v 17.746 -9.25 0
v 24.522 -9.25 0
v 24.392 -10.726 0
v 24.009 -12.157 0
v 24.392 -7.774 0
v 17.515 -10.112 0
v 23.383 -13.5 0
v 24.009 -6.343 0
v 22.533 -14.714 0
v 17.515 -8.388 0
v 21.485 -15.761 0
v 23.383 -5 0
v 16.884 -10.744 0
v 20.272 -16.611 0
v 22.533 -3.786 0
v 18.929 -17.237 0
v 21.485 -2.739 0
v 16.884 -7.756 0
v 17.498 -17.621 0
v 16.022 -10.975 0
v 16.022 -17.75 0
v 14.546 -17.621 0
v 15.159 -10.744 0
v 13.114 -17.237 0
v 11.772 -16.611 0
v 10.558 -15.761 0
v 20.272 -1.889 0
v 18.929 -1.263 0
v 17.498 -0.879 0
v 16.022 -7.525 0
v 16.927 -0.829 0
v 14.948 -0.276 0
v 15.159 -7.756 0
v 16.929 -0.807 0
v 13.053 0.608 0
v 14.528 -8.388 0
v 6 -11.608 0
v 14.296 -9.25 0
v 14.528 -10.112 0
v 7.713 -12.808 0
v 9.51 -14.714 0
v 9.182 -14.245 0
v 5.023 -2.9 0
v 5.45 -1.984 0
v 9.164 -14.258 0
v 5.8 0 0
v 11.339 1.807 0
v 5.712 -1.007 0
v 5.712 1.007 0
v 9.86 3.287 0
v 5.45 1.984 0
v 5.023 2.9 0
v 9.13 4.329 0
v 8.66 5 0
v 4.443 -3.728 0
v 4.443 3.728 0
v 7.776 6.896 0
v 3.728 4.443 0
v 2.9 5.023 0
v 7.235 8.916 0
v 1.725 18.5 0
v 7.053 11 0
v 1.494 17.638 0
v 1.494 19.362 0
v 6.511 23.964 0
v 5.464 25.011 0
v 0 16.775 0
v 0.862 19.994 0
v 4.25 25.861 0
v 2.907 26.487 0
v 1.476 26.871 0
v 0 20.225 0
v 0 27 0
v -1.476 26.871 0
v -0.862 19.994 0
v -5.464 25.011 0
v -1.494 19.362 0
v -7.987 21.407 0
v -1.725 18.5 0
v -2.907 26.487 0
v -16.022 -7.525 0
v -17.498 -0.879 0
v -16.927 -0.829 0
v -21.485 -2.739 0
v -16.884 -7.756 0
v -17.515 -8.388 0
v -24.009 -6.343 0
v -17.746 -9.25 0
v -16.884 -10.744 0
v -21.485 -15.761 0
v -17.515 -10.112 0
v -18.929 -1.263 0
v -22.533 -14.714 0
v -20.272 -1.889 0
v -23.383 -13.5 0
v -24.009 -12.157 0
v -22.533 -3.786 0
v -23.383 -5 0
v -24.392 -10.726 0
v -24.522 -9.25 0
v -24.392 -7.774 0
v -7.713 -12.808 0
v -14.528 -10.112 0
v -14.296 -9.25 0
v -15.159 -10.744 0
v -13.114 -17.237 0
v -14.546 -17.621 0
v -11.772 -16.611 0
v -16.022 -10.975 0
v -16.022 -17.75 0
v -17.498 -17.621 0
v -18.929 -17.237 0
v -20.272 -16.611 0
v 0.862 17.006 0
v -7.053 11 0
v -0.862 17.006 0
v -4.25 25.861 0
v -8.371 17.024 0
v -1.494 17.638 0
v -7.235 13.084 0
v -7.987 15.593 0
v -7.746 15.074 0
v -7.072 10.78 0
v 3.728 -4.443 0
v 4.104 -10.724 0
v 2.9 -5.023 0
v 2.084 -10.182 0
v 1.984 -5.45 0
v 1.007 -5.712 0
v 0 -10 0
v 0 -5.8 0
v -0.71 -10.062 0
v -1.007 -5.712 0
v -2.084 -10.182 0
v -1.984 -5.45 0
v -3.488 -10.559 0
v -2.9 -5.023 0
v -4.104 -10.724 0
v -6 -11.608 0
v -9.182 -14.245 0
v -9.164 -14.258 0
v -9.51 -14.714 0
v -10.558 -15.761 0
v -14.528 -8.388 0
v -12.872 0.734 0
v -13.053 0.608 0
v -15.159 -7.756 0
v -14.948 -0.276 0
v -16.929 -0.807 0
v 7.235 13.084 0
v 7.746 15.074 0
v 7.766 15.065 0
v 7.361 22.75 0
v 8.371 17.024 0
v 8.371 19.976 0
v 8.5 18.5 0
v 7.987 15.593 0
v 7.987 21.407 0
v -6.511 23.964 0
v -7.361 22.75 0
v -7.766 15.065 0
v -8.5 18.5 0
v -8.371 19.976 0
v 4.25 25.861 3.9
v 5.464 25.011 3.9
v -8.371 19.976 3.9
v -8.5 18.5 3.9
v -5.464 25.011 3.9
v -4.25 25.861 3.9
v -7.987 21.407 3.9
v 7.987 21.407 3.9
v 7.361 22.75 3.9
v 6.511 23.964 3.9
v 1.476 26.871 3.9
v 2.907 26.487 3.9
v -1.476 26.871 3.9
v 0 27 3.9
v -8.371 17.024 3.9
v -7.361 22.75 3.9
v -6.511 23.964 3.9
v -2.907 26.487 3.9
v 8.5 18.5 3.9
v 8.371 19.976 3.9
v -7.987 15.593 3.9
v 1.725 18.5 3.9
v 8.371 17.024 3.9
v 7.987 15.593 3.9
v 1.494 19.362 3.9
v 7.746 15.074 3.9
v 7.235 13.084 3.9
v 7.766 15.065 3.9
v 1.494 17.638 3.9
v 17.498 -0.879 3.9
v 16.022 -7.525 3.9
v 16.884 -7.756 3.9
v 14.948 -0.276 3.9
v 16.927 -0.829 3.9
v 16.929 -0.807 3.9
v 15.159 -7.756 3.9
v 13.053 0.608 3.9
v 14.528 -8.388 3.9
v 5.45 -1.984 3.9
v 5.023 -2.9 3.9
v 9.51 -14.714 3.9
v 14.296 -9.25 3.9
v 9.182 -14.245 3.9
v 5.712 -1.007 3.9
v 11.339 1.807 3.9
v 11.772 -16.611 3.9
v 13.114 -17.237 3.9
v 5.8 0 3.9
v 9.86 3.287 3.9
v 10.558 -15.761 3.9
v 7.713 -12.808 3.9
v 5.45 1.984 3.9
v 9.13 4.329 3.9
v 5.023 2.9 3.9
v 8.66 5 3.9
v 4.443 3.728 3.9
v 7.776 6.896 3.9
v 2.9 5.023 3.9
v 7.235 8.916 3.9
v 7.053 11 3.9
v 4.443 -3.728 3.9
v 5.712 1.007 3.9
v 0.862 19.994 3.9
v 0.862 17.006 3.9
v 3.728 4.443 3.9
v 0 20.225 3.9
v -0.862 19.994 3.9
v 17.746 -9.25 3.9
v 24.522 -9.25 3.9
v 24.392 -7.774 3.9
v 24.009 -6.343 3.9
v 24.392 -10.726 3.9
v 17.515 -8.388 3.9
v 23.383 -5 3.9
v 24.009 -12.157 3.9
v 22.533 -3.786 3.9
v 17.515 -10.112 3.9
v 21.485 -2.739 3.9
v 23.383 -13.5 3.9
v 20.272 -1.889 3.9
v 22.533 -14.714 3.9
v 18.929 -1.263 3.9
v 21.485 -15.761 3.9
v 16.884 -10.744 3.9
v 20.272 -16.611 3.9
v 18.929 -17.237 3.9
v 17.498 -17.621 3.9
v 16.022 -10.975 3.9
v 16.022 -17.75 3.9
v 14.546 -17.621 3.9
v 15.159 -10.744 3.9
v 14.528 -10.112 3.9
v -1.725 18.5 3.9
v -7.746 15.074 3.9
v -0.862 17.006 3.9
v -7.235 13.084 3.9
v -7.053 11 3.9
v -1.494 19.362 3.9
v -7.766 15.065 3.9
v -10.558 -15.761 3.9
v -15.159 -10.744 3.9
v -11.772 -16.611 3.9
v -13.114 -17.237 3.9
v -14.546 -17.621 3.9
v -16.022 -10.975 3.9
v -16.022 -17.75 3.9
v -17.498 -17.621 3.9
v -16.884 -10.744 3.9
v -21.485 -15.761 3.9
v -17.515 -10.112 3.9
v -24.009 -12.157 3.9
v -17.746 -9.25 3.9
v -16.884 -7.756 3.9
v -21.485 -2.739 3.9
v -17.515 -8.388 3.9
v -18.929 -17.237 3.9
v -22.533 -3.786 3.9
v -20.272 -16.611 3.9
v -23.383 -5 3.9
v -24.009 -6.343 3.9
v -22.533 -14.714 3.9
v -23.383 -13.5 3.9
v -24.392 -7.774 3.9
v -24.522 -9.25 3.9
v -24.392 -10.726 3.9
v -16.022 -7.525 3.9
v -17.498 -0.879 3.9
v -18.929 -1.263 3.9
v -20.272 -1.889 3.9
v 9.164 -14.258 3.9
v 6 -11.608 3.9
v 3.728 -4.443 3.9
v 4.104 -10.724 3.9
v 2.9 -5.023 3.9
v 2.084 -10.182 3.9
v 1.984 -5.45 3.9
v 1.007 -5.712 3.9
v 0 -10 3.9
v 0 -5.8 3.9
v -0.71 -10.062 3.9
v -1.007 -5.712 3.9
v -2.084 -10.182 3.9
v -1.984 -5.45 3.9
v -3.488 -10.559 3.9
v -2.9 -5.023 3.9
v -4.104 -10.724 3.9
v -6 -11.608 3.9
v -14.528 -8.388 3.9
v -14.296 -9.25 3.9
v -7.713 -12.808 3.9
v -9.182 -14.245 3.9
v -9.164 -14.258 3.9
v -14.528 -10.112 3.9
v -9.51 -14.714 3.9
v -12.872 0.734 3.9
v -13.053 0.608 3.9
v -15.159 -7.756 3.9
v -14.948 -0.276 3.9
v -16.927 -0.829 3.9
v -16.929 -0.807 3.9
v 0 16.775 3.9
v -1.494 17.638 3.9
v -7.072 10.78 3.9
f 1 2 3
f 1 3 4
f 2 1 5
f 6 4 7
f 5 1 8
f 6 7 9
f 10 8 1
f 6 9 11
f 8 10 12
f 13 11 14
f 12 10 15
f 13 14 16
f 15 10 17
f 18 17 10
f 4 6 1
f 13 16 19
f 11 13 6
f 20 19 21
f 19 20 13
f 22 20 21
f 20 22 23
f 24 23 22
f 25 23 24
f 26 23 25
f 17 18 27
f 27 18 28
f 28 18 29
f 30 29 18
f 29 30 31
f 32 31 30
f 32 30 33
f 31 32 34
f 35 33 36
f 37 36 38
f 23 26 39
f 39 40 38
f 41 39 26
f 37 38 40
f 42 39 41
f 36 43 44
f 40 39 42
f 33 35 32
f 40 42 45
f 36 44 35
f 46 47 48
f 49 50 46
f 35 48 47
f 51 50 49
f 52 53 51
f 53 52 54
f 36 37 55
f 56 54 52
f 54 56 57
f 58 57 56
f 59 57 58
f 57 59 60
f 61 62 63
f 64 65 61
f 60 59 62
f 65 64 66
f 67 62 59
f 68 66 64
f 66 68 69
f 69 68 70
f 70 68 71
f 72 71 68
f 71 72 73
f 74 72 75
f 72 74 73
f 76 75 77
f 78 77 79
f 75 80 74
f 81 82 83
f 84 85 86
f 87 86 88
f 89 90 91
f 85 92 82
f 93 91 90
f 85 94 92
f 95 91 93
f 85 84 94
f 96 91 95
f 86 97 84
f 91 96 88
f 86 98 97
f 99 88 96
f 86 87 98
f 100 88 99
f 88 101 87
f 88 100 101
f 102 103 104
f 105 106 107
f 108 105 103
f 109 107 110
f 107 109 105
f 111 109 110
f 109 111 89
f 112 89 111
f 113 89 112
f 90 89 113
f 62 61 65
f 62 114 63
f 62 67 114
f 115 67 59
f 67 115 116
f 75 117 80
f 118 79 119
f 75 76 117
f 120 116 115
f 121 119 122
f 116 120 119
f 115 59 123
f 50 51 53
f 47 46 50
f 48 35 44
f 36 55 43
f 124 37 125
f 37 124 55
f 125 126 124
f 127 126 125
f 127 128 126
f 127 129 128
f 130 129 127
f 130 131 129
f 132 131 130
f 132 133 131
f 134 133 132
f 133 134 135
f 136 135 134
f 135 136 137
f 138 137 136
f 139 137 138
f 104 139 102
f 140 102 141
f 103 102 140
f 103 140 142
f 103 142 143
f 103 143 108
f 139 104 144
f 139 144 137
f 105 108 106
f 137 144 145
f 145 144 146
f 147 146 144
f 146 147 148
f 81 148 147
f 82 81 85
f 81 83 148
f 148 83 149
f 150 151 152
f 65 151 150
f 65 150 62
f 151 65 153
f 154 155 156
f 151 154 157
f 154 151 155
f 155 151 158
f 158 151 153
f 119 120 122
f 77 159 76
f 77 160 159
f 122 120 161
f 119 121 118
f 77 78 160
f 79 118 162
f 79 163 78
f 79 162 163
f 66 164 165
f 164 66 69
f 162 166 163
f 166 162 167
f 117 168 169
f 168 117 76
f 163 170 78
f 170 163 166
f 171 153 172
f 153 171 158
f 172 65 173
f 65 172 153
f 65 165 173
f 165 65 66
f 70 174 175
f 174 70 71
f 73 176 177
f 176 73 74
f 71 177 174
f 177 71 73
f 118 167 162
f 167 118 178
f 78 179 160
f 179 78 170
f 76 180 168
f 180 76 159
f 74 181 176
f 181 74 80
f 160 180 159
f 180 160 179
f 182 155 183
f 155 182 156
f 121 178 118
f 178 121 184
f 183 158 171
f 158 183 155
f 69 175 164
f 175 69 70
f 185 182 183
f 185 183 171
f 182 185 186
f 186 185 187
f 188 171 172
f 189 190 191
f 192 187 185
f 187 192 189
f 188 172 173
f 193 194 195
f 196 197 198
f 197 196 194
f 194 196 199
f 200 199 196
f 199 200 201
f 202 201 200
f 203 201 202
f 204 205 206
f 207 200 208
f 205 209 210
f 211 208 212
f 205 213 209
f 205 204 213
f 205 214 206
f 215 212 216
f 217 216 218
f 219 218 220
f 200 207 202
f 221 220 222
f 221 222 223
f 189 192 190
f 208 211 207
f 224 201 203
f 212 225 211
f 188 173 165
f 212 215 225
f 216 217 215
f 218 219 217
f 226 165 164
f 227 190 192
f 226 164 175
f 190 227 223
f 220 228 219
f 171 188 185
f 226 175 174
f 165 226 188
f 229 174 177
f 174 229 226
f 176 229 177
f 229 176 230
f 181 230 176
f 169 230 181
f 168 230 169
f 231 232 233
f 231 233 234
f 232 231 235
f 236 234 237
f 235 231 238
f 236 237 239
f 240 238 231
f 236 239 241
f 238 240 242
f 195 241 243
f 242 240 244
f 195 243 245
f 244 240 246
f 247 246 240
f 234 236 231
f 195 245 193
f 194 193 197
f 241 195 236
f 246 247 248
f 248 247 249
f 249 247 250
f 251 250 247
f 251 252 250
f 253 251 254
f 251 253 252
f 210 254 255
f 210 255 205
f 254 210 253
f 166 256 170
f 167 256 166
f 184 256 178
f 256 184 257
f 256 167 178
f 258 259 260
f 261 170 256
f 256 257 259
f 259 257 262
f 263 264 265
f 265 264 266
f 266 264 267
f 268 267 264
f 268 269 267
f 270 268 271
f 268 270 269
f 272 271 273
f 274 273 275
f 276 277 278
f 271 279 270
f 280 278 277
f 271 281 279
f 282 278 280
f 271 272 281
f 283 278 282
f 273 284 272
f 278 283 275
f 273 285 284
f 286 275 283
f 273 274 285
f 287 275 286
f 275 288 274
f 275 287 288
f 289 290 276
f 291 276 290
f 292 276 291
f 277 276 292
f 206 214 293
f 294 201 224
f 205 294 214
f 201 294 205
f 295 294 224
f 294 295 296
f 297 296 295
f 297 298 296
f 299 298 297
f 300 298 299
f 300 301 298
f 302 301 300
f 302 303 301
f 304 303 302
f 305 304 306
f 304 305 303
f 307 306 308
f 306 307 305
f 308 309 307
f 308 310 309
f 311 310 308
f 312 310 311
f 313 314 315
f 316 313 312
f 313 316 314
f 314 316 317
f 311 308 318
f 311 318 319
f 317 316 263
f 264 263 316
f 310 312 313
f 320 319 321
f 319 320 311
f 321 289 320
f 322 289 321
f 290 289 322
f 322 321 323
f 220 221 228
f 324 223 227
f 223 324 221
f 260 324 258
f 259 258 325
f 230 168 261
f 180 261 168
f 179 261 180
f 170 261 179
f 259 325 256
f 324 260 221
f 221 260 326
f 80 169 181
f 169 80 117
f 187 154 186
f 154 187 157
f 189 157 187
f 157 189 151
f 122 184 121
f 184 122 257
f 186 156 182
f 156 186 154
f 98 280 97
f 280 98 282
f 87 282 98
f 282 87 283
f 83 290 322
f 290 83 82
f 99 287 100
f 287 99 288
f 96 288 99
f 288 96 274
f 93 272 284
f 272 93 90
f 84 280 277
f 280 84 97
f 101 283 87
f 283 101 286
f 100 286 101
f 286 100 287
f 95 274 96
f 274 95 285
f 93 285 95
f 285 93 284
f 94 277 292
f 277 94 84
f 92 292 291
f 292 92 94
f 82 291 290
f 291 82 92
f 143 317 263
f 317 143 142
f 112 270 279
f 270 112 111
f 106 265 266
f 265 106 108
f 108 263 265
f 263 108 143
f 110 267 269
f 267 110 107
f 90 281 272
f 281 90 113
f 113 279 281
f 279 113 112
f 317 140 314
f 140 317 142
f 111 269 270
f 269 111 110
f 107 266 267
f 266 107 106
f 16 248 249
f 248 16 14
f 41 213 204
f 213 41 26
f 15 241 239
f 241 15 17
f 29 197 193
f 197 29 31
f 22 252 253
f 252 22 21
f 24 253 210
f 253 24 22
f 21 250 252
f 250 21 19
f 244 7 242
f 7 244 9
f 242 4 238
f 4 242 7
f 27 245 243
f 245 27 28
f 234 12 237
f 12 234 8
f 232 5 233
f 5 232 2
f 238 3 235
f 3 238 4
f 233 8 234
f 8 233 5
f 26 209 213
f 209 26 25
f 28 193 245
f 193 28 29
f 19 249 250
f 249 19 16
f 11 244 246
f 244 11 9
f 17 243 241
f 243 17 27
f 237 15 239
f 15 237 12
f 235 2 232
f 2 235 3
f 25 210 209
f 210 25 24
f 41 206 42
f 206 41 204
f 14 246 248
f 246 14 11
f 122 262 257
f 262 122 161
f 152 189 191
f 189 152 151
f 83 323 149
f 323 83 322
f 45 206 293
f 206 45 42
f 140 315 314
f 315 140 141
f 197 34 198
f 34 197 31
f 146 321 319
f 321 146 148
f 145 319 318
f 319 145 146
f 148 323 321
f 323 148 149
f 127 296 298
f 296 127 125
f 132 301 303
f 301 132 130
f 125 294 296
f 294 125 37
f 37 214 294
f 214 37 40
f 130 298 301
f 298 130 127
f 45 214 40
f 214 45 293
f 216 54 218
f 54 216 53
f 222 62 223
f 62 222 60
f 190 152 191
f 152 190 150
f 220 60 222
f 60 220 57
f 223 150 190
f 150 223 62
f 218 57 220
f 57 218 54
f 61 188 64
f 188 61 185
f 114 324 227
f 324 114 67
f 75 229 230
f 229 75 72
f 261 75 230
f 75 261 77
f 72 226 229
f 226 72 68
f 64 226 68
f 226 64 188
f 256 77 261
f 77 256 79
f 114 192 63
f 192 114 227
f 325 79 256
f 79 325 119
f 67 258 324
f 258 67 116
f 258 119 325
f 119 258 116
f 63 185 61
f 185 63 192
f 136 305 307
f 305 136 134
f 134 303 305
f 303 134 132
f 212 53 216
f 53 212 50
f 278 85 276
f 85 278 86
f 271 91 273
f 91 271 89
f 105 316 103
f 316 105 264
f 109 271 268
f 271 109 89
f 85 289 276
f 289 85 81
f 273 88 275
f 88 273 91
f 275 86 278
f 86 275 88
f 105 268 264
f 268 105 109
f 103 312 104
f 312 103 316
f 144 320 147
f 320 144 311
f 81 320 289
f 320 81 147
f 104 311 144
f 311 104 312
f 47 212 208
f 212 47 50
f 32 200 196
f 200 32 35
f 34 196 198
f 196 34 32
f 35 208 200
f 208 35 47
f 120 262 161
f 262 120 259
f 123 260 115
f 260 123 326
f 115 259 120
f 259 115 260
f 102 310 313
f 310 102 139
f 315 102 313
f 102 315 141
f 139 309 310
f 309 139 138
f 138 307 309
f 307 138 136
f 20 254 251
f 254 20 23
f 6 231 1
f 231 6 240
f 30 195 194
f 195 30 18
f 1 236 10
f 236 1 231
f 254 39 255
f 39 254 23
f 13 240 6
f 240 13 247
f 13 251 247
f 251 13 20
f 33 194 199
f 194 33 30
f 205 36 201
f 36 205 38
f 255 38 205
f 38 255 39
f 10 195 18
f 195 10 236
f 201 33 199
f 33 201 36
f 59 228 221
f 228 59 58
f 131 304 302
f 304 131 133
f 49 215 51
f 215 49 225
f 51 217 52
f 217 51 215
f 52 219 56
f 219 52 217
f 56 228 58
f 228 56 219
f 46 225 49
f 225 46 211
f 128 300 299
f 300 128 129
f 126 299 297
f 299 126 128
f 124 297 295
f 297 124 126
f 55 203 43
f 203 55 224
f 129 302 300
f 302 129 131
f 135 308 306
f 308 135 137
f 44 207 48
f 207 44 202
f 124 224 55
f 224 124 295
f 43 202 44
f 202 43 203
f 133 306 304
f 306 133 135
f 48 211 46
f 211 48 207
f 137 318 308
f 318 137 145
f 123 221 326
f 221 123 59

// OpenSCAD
// file: configuration.scad
// Increase this if your slicer or printer make holes too tight.
extra_radius = 0.1;

// OD = outside diameter, corner to corner.
m3_nut_od = 6.1;
m3_nut_radius = m3_nut_od/2 + 0.2 + extra_radius;

// Major diameter of metric 3mm thread.
m3_major = 2.85;
m3_radius = m3_major/2 + extra_radius;
m3_wide_radius = m3_major/2 + extra_radius + 0.2;

// OD = outside diameter, corner to corner.
m5_nut_od = 8.1;
m5_nut_radius = m5_nut_od/2 + 0.2 + extra_radius;

// Major diameter of metric 5mm thread.
m5_major = 4.85;
m5_radius = m5_major/2 + extra_radius;
m5_wide_radius = m5_major/2 + extra_radius + 0.2;

// NEMA17 stepper motors.
motor_shaft_diameter = 5;
motor_shaft_radius = motor_shaft_diameter/2 + extra_radius;

// Frame brackets. M3x8mm screws work best with 3.6 mm brackets.
thickness = 3.6;

// OpenBeam or Misumi. Currently only 15x15 mm, but there is a plan
// to make models more parametric and allow 20x20 mm in the future.
extrusion = 15;
// main file
include <configuration.scad>;

separation = 44;  // Distance between ball joint mounting faces.
offset = 22;  // Same as DELTA_EFFECTOR_OFFSET in Marlin.
mount_radius = 18.5;  // Hotend mounting screws, standard would be 25mm.

// Tuning Parameters for Different Jheads -- Edit Here
jhead_od_radius = 8.00;  // Hole for the hotend (J-Head diameter is 16mm).
jhead_id_radius = 5.80;
jhead_upper_height = 0.0; // From top of hotend to notch -- Leave 2mm for upper bowden mount
jhead_notch_height = 3.9; // Notch height
// End Edit

height = jhead_upper_height + jhead_notch_height;


module body_base() {
  union() {
        echo("Height = ", height);
		cylinder(r=offset-5, h=height, center=true, $fn=36);
		
		for (a = [0:120:359]) rotate([0, 0, a]) {
      	translate([0, mount_radius, 0])	cylinder(r=8.5, h=height, center=true, $fn=36);
    		}
		   
    }
}

module body_cuts() {
   union() {
     for (a = [0:120:359]) rotate([0, 0, a]) {
      translate([0, mount_radius, 0])	cylinder(r=m3_wide_radius, h=height*2, center=true, $fn=12);
     for (a = [60:120:359]) rotate([0, 0, a]) {
       translate([0, offset, 0])	cylinder(r=12, h=height*2, center=true, $fn=36);
       }
    }
   }

}

module body()
{
    difference(){
          body_base();
          body_cuts();
          }

}

module hotend_cutouts() 
{

	if (jhead_upper_height>0){
	   translate([0, 0, 0]) cylinder(r=jhead_od_radius, h=height*2, $fn=36);
       rotate([0, 0, 60]) translate([0,offset/2, (height / 2)]) 
              cube ([jhead_od_radius*2,offset,height + .01],center=true);
       } 
    translate([0, 0, 0 - jhead_notch_height - 1]) cylinder(r=jhead_id_radius, h=height*10, $fn=36); 
    rotate([0, 0, 60])translate([0,offset/2,0 - height / 2])cube ([jhead_id_radius*2,offset,height*2+.01],center=true);
   
	


   


}
module mount() {
  difference() {
     body();
     translate([0,0,0]) hotend_cutouts();
  }
}

translate([0, 0, height/2]) mount();
// translate([0, 0, 30]) hotend_cutouts();  // Visualize cutout for debug
